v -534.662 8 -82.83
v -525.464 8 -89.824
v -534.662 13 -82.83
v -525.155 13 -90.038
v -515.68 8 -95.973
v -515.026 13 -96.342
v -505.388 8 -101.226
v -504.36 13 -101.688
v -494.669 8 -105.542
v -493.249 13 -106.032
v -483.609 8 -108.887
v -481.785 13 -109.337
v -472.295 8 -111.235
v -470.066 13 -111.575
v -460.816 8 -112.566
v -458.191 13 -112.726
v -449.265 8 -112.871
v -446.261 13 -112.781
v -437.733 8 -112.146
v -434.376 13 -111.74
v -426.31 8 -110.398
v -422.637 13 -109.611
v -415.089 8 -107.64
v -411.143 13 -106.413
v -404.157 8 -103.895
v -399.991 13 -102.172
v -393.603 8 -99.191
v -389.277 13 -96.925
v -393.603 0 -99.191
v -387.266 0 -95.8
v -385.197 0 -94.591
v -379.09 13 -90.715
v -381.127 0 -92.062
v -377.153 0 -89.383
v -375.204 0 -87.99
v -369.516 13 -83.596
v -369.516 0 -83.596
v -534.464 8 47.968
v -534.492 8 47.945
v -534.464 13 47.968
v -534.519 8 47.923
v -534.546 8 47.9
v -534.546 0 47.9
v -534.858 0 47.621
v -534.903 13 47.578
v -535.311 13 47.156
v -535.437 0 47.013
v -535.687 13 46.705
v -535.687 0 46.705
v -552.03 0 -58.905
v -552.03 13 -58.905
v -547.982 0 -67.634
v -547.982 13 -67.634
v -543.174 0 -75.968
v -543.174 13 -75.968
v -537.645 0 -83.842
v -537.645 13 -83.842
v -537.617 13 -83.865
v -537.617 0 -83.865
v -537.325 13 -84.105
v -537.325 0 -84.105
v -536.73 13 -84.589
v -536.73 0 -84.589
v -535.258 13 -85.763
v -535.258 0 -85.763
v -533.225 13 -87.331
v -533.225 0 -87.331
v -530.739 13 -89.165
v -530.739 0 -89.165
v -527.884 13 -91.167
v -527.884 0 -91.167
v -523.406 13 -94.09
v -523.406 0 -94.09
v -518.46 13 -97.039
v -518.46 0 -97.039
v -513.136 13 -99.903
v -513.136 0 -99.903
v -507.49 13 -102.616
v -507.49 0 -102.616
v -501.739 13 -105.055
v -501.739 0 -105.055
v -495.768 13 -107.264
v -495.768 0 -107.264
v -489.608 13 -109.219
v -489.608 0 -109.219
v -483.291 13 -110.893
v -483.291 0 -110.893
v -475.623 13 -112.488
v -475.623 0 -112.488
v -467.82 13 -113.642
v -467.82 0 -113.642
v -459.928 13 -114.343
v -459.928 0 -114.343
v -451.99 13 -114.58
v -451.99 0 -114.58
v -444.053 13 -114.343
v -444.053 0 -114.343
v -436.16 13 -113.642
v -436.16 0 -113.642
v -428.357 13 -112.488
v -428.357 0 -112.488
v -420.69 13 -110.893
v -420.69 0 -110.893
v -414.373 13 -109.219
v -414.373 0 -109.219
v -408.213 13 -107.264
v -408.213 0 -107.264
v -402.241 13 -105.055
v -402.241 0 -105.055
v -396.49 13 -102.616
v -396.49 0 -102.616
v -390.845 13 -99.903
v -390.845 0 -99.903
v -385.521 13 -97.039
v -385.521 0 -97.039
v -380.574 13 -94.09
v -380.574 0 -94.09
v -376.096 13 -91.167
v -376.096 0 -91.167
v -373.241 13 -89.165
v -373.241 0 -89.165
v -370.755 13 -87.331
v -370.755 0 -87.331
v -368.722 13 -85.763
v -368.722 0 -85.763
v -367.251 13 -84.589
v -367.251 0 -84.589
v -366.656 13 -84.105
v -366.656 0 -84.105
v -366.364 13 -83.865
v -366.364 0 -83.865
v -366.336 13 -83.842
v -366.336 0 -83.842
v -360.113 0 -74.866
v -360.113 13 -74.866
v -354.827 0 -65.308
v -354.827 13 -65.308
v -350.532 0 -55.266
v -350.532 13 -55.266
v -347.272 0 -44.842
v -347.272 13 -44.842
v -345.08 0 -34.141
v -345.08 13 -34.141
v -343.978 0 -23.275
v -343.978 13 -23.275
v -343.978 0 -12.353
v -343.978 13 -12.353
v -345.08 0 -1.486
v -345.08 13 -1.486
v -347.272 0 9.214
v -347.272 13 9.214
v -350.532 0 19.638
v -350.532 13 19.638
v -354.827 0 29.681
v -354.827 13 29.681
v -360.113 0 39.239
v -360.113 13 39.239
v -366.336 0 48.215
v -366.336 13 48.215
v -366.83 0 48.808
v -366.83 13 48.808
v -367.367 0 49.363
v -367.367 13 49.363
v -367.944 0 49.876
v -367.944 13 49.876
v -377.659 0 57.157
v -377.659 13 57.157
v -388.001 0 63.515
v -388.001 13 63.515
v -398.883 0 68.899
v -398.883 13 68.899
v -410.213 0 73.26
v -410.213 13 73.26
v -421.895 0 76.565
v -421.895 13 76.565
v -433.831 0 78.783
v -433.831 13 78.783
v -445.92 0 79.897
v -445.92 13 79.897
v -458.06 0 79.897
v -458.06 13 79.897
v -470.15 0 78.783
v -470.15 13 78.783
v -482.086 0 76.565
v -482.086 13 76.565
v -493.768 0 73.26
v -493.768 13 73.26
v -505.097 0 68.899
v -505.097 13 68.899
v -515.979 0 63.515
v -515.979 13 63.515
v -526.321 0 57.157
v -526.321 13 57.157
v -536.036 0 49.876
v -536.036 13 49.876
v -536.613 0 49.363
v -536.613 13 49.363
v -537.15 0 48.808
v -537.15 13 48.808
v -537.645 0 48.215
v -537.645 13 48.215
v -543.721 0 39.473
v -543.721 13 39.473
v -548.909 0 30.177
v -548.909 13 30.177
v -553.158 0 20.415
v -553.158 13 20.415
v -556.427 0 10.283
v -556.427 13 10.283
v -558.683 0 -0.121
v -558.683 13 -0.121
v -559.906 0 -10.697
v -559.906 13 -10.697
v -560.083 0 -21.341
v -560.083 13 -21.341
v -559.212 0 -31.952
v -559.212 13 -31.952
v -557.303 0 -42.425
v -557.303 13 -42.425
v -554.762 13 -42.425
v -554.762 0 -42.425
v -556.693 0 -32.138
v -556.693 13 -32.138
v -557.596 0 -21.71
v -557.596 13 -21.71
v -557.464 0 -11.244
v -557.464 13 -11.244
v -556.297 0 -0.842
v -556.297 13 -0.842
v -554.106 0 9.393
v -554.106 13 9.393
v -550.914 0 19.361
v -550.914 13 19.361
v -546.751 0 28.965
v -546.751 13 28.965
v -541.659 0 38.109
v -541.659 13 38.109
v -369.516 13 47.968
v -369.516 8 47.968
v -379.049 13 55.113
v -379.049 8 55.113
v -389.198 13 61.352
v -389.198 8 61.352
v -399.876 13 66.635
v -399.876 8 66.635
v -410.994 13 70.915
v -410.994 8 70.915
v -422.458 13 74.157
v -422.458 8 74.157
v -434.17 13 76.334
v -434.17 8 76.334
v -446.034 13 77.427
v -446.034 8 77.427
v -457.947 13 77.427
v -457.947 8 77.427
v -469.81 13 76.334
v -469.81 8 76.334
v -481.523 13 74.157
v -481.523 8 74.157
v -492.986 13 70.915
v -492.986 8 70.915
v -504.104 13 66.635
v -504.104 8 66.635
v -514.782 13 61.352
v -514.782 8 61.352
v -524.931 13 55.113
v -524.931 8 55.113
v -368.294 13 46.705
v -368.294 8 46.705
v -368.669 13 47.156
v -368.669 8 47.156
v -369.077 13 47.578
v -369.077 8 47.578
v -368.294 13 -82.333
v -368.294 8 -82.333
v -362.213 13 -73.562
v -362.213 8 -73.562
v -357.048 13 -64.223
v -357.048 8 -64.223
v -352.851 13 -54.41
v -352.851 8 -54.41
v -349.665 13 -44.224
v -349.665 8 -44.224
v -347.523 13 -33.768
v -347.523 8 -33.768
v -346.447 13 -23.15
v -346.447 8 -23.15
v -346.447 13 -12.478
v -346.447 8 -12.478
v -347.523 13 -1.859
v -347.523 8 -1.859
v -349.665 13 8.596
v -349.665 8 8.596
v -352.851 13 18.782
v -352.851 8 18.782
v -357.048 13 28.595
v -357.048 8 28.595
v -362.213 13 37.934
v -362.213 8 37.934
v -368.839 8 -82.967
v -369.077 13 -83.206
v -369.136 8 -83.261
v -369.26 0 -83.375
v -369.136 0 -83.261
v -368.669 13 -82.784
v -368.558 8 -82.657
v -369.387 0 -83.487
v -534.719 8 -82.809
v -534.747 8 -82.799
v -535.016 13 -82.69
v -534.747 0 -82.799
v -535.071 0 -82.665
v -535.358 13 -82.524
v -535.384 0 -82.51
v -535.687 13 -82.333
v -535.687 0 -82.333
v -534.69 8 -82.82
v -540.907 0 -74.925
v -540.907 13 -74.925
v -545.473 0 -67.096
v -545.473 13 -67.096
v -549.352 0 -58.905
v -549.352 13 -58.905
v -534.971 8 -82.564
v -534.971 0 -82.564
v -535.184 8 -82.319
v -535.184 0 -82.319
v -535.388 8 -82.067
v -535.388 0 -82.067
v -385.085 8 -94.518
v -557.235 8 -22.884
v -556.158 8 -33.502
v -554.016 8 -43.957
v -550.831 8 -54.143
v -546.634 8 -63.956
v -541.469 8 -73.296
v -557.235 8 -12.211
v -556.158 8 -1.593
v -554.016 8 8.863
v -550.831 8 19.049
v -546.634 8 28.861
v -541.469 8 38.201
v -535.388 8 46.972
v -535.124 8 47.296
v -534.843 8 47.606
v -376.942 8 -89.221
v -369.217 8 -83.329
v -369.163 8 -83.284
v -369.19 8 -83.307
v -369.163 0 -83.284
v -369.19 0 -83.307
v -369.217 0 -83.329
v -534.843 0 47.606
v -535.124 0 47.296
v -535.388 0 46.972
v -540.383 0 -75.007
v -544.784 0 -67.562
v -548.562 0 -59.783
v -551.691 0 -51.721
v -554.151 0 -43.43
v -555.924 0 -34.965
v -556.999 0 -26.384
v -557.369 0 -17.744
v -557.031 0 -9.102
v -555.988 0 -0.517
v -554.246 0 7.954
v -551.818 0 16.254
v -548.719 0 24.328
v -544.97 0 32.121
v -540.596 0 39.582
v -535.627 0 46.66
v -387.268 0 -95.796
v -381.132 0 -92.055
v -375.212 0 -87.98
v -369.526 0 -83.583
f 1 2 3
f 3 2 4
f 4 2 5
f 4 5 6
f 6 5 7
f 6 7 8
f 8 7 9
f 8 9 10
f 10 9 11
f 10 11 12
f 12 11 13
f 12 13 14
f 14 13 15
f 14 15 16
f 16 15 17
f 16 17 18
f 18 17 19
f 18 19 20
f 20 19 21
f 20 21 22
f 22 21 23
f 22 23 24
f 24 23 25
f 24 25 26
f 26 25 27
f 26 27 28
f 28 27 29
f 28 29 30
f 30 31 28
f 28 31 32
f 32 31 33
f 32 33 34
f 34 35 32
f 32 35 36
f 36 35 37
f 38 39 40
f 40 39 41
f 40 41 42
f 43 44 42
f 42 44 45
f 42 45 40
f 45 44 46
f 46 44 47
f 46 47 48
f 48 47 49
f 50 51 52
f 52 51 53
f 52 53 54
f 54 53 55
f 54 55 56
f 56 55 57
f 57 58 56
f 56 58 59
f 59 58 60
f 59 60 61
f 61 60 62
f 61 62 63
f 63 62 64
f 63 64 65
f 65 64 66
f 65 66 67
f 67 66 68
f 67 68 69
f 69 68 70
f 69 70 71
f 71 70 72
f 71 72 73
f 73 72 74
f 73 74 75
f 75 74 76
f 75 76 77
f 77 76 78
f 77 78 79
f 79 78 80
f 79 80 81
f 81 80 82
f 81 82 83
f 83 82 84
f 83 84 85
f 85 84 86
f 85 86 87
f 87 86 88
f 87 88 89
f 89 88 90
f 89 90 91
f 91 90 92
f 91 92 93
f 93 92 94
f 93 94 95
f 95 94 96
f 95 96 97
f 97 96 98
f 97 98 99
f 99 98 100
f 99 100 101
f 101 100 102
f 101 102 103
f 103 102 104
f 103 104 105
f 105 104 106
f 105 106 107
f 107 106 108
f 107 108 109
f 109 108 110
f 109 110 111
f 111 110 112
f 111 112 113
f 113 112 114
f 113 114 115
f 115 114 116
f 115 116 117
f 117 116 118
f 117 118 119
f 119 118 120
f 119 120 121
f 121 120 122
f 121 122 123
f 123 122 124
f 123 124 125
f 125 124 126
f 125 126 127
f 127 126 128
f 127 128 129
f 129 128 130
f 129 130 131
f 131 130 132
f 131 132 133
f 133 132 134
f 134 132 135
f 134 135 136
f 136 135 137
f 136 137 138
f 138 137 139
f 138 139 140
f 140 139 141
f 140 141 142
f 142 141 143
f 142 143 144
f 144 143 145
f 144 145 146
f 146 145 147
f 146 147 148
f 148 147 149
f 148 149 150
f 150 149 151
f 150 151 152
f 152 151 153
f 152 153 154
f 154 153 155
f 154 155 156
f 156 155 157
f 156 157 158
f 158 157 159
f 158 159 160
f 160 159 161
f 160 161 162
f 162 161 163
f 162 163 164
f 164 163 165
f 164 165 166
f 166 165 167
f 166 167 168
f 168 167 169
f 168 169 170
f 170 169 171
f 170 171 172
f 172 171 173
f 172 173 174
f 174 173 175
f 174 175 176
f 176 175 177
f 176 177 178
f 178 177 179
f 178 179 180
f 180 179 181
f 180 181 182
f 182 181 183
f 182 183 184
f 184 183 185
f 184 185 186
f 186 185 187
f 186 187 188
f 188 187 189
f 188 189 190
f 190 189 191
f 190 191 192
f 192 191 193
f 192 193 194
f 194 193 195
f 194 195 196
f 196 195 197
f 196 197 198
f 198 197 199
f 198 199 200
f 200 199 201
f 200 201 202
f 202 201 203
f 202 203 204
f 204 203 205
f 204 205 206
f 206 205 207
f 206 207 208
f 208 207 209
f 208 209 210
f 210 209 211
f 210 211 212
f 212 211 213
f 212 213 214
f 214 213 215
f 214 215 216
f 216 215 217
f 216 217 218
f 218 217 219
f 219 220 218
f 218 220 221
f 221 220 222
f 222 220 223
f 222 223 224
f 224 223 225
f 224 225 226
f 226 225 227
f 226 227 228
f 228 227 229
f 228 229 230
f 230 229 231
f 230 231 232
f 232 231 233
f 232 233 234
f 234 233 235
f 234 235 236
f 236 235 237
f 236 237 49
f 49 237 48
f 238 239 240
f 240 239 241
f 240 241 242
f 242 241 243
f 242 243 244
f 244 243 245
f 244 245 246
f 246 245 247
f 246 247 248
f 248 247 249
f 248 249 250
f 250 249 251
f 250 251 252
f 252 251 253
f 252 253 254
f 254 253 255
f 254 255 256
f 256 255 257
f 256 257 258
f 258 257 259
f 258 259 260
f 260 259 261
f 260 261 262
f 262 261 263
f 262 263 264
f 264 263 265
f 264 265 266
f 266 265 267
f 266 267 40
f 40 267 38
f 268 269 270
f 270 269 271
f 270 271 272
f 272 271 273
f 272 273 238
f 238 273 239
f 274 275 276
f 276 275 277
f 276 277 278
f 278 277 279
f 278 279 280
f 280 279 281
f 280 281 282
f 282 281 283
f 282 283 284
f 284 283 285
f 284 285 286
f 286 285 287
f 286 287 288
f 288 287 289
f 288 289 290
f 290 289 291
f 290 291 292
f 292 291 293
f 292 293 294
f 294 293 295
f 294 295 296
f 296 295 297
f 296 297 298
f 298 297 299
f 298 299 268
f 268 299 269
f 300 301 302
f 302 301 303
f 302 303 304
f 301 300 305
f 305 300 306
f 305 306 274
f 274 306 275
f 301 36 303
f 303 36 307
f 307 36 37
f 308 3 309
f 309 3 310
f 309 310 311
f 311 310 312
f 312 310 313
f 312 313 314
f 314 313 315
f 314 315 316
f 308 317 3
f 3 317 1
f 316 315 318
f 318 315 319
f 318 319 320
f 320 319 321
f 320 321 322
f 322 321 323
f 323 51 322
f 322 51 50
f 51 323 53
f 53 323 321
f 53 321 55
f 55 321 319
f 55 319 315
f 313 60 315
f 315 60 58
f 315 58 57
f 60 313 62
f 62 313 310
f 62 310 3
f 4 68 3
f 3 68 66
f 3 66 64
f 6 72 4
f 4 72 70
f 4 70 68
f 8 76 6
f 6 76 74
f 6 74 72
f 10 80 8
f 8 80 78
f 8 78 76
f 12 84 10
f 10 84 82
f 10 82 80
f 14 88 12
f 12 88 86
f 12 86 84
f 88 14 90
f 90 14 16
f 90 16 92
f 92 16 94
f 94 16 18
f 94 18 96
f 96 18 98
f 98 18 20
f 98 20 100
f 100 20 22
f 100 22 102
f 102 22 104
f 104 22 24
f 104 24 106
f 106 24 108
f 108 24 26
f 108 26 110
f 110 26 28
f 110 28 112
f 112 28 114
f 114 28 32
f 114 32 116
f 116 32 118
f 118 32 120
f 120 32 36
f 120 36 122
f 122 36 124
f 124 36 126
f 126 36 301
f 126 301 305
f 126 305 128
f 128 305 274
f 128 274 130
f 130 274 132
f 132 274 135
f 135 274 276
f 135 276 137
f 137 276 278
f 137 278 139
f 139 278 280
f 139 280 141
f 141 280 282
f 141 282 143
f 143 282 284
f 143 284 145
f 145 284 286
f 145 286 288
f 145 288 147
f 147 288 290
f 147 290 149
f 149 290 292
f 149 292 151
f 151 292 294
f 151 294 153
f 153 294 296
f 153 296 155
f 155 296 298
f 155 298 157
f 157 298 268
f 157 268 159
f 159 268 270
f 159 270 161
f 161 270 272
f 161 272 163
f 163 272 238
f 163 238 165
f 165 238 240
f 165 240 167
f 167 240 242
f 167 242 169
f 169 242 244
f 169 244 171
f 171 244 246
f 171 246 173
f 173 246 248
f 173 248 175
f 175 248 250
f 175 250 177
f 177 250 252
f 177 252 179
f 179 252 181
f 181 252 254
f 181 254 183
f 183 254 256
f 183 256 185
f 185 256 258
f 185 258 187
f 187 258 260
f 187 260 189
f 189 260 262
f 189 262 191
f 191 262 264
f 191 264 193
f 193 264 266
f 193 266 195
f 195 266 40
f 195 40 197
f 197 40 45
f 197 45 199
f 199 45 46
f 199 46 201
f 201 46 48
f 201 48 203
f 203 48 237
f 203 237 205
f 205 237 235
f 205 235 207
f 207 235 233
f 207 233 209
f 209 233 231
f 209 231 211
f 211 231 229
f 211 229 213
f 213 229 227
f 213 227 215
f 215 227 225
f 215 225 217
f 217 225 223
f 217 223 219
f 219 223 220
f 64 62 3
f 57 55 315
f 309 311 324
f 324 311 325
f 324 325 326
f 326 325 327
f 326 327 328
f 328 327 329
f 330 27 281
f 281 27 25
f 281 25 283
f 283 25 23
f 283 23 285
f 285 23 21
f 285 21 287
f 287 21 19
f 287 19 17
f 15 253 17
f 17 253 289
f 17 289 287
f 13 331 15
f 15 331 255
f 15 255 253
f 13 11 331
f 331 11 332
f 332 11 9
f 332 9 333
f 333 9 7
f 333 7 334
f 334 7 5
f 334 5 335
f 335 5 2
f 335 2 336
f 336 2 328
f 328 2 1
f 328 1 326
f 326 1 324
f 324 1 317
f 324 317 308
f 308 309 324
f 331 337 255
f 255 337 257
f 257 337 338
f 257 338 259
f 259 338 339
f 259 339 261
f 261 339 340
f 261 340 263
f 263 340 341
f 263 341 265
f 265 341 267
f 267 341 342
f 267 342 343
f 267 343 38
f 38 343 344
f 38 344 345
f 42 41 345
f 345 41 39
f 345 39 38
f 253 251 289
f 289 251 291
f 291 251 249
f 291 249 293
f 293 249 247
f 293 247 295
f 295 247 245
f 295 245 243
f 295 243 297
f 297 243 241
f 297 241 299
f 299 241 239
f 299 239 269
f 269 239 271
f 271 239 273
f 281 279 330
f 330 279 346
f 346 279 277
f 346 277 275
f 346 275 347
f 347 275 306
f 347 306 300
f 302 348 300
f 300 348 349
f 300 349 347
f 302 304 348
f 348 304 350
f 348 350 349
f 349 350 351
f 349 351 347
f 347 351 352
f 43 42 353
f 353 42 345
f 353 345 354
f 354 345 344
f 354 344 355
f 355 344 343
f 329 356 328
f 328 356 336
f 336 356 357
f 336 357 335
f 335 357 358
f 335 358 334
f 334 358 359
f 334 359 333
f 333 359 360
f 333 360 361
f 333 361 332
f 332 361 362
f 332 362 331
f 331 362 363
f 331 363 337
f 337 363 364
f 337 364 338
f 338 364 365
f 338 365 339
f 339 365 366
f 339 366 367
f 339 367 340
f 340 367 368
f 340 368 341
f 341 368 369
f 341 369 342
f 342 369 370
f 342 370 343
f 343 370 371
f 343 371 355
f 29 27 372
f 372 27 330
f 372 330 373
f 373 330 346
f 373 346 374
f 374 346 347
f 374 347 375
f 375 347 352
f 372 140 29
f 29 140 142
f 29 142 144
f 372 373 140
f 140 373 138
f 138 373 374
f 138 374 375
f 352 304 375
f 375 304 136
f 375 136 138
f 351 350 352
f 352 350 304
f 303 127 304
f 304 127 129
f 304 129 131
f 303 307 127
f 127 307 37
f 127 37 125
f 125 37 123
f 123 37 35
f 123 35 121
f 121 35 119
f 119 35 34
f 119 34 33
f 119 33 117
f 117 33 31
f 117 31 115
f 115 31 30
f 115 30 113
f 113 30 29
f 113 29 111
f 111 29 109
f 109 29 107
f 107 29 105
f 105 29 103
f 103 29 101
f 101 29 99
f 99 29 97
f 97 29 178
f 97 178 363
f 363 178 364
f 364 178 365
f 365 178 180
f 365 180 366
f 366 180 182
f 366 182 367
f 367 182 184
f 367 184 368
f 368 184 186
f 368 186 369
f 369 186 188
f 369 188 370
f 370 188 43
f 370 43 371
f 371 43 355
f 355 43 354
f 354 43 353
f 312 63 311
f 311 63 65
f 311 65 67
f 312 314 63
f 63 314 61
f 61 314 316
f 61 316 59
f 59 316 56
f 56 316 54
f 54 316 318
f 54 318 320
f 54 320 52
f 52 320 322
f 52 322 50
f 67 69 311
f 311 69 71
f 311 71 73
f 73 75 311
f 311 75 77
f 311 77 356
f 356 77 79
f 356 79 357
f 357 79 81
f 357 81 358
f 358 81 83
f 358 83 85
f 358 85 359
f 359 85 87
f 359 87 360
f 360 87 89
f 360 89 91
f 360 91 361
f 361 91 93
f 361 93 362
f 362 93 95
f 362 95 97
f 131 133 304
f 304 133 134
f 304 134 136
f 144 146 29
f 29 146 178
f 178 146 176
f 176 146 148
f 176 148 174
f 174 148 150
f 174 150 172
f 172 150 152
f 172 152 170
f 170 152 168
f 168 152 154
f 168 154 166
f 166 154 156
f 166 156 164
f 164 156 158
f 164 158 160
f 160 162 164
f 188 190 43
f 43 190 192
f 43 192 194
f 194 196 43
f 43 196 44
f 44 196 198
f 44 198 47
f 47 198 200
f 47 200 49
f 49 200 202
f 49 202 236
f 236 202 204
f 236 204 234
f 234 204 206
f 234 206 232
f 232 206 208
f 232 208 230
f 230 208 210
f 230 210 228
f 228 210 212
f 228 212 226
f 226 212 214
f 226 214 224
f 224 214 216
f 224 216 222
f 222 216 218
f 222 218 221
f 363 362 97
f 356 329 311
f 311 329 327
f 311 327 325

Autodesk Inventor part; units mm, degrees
ref_plane "YZ Plane" through (0, 0, 0) normal (1, 0, 0) x (0, 1, 0)
ref_plane "XZ Plane" through (0, 0, 0) normal (0, 1, 0) x (-1, 0, 0)
ref_plane "XY Plane" through (0, 0, 0) normal (0, 0, 1) x (1, 0, 0)
sketch "Sketch11" plane through (0, 0, 0) normal (0, 1, 0) x (-1, 0, 0)
  line L0 (-102.245, 23.8947) -> (-99.7788, 23.8947) projected
  arc A0 (-99.7788, 23.8947) -> (-81.2588, -62.64) centre (0, 0) ccw projected
  arc A1 (-80.0719, -63.8659) -> (80.0719, -63.8659) centre (0, 33.3333) ccw projected
  arc A2 (81.2588, -62.64) -> (81.2588, 62.64) centre (0, 0) ccw projected
  arc A3 (80.0719, 63.8659) -> (-80.0719, 63.8659) centre (0, -33.3333) ccw projected
  arc A4 (-81.2588, 62.64) -> (-94.526, 39.8947) centre (0, 0) ccw projected
  line L1 (-94.526, 39.8947) -> (-97.1257, 39.8947) projected
  arc A5 (-83.1596, 64.1053) -> (-97.1257, 39.8947) centre (0, 0) ccw projected
  arc A6 (81.5979, 65.7183) -> (-81.5979, 65.7183) centre (0, -33.3333) ccw projected
  arc A7 (83.1596, -64.1053) -> (83.1596, 64.1053) centre (0, 0) ccw projected
  arc A8 (-81.5979, -65.7183) -> (81.5979, -65.7183) centre (0, 33.3333) ccw projected
  arc A9 (-102.245, 23.8947) -> (-83.1596, -64.1053) centre (0, 0) ccw projected
  arc A10 (-93.4835, 39.8947) -> (-98.7917, 23.8947) centre (0, 0) ccw projected
  line L2 (-101.282, 23.8947) -> (-98.7917, 23.8947) projected
  arc A11 (-96.1114, 39.8947) -> (-101.282, 23.8947) centre (0, 0) ccw projected
  line L3 (-96.1114, 39.8947) -> (-93.4835, 39.8947) projected
  spline S0 degree 3 poles (366.037, 48.4811) (366.0397, 48.4833) (366.0423, 48.4855) (366.045, 48.4876) (366.0496, 48.4915) (366.0562, 48.4969) (366.154, 48.5774) (366.4584, 48.8288) (367.7198, 49.8494) (368.9391, 50.8224) (371.9742, 53.1167) (373.7879, 54.4353) (378.6033, 57.7188) (381.7908, 59.7316) (388.6525, 63.6242) (392.3319, 65.5095) (403.6984, 70.6488) (411.8775, 73.498) (430.5038, 77.9475) (441.0984, 79.2185) (451.6914, 79.2185) (462.2843, 79.2185) (472.8789, 77.9475) (491.5053, 73.498) (499.6844, 70.6488) (511.0509, 65.5095) (514.7302, 63.6242) (521.5919, 59.7316) (524.7794, 57.7188) (529.5949, 54.4353) (531.4085, 53.1167) (534.4436, 50.8224) (535.663, 49.8494) (536.9243, 48.8288) (537.2288, 48.5774) (537.3265, 48.4969) (537.3332, 48.4915) (537.3378, 48.4876) (537.3404, 48.4855) (537.3431, 48.4833) (537.3457, 48.4811) knots -20.82184 -20.82184 -20.82184 -20.82184 -20.790868 -20.790868 -20.790868 -20.736708 -20.736708 -20.180748 -20.180748 -19.31556 -19.31556 -18.450373 -18.450373 -17.242245 -17.242245 -16.034118 -16.034118 -13.684157 -13.684157 -10.892672 -10.892672 -10.892672 -8.101188 -8.101188 -5.751227 -5.751227 -4.5431 -4.5431 -3.334972 -3.334972 -2.469784 -2.469784 -1.604597 -1.604597 -1.048636 -1.048636 -0.994477 -0.994477 -0.994477 -0.963505 -0.963505 -0.963505 -0.963505
  line L4 (346.379, 7.0643) -> (348.9192, 7.0643)
  arc A12 (354.3296, 23.5443) -> (367.9948, -82.0665) centre (451.6914, -17.5473) ccw
  spline S1 degree 3 poles (367.9948, -82.0665) (368.0665, -82.1595) (368.2141, -82.3423) (368.4475, -82.6062) (368.6926, -82.8593) (368.9488, -83.1012) (369.1267, -83.2546) (369.2173, -83.3292) knots -1 -1 -1 -1 -0.8 -0.6 -0.4 -0.2 0 0 0 0
  arc A13 (369.2173, -83.3292) -> (534.1654, -83.3292) centre (451.6914, 16.786) ccw
  spline S2 degree 3 poles (534.1654, -83.3292) (534.2561, -83.2546) (534.434, -83.1012) (534.6902, -82.8593) (534.9352, -82.6062) (535.1687, -82.3423) (535.3162, -82.1595) (535.3879, -82.0665) knots 0 0 0 0 0.2 0.4 0.6 0.8 1 1 1 1
  arc A14 (535.3879, -82.0665) -> (535.3879, 46.9719) centre (451.6914, -17.5473) ccw
  spline S3 degree 3 poles (535.3879, 46.9719) (535.3162, 47.0649) (535.1687, 47.2476) (534.9352, 47.5115) (534.6902, 47.7647) (534.434, 48.0065) (534.2561, 48.1599) (534.1654, 48.2346) knots -1 -1 -1 -1 -0.8 -0.6 -0.4 -0.2 0 0 0 0
  arc A15 (534.1654, 48.2346) -> (369.2173, 48.2346) centre (451.6914, -51.8807) ccw
  spline S4 degree 3 poles (369.2173, 48.2346) (369.1267, 48.1599) (368.9488, 48.0065) (368.6926, 47.7647) (368.4475, 47.5115) (368.2141, 47.2476) (368.0665, 47.0649) (367.9948, 46.9719) knots 0 0 0 0 0.2 0.4 0.6 0.8 1 1 1 1
  arc A16 (367.9948, 46.9719) -> (354.3296, 23.5443) centre (451.6914, -17.5473) ccw
  line L5 (354.3296, 23.5443) -> (351.6519, 23.5443)
  arc A17 (366.037, 48.4811) -> (351.6519, 23.5443) centre (451.6914, -17.5473) ccw
  spline S5 degree 3 poles (367.6455, 50.1425) (367.3474, 49.8969) (367.0632, 49.6347) (366.5258, 49.0795) (366.2729, 48.7871) (366.037, 48.4811) knots 0 0 0 0 0.112525 0.112525 0.22505 0.22505 0.22505 0.22505
  arc A18 (535.7372, 50.1425) -> (367.6455, 50.1425) centre (451.6914, -51.8807) ccw
  spline S6 degree 3 poles (537.3457, 48.4811) (537.1099, 48.7871) (536.857, 49.0795) (536.3195, 49.6347) (536.0354, 49.8969) (535.7372, 50.1425) knots 0 0 0 0 0.112525 0.112525 0.22505 0.22505 0.22505 0.22505
  arc A19 (537.3457, -83.5757) -> (537.3457, 48.4811) centre (451.6914, -17.5473) ccw
  spline S7 degree 3 poles (535.7372, -85.2372) (536.0354, -84.9915) (536.3195, -84.7293) (536.857, -84.1742) (537.1099, -83.8817) (537.3457, -83.5757) knots 0 0 0 0 0.112525 0.112525 0.22505 0.22505 0.22505 0.22505
  arc A20 (367.6455, -85.2372) -> (535.7372, -85.2372) centre (451.6914, 16.786) ccw
  spline S8 degree 3 poles (366.037, -83.5757) (366.2729, -83.8817) (366.5258, -84.1742) (367.0632, -84.7293) (367.3474, -84.9915) (367.6455, -85.2372) knots 0 0 0 0 0.112525 0.112525 0.22505 0.22505 0.22505 0.22505
  arc A21 (346.379, 7.0643) -> (366.037, -83.5757) centre (451.6914, -17.5473) ccw
  line L6 (347.3709, 7.0643) -> (348.9192, 7.0643)
  arc A22 (352.6966, 23.5443) -> (347.3709, 7.0643) centre (451.6914, -17.5473) ccw
  line L7 (352.6966, 23.5443) -> (354.3296, 23.5443)
  point P0 (354.3296, 23.5443)
  point P1 (348.9192, 7.0643)
extrude "Extrusion8" add sketch "Sketch11" along normal blind 8 contours A16 S4 A15 S3 A14 S2 A13 S1 A12
sketch "Sketch14" plane through (0, 8, 0) normal (0, 1, 0) x (1, 0, 0)
  line L0 (-557.3026, 42.4254) -> (-554.7623, 42.4254)
  spline S0 degree 3 poles (-535.6868, -46.7054) (-535.6151, -46.7984) (-535.4675, -46.9811) (-535.2341, -47.245) (-534.989, -47.4982) (-534.7328, -47.74) (-534.5549, -47.8934) (-534.4643, -47.9681) knots -1 -1 -1 -1 -0.8 -0.6 -0.4 -0.2 0 0 0 0
  spline S1 degree 3 poles (-537.6446, -48.2146) (-537.4087, -48.5206) (-537.1558, -48.813) (-536.6184, -49.3682) (-536.3342, -49.6304) (-536.036, -49.876) knots 0 0 0 0 0.112525 0.112525 0.22505 0.22505 0.22505 0.22505
  arc A0 (-554.7623, 42.4254) -> (-535.6868, -46.7054) centre (-451.9902, 17.8138) ccw
  arc A1 (-557.3026, 42.4254) -> (-537.6446, -48.2146) centre (-451.9902, 17.8138) ccw
  spline S2 degree 3 poles (-369.5161, -47.9681) (-369.4255, -47.8934) (-369.2476, -47.74) (-368.9914, -47.4982) (-368.7463, -47.245) (-368.5129, -46.9811) (-368.3653, -46.7984) (-368.2937, -46.7054) knots 0 0 0 0 0.2 0.4 0.6 0.8 1 1 1 1
  spline S3 degree 3 poles (-367.9444, -49.876) (-367.6462, -49.6304) (-367.3621, -49.3682) (-366.8246, -48.813) (-366.5717, -48.5206) (-366.3358, -48.2146) knots 0 0 0 0 0.112525 0.112525 0.22505 0.22505 0.22505 0.22505
  arc A2 (-368.2937, -46.7054) -> (-368.2937, 82.333) centre (-451.9902, 17.8138) ccw
  arc A3 (-366.3358, -48.2146) -> (-366.3358, 83.8422) centre (-451.9902, 17.8138) ccw
  spline S4 degree 3 poles (-366.3358, 83.8422) (-366.5717, 84.1482) (-366.8246, 84.4407) (-367.3621, 84.9958) (-367.6462, 85.258) (-367.9444, 85.5037) knots 0 0 0 0 0.112525 0.112525 0.22505 0.22505 0.22505 0.22505
  spline S5 degree 3 poles (-368.2937, 82.333) (-368.3653, 82.426) (-368.5129, 82.6088) (-368.7463, 82.8727) (-368.9914, 83.1258) (-369.2476, 83.3677) (-369.4255, 83.5211) (-369.5161, 83.5957) knots -1 -1 -1 -1 -0.8 -0.6 -0.4 -0.2 0 0 0 0
  spline S6 degree 3 poles (-537.6446, 83.8422) (-537.6419, 83.8444) (-537.6393, 83.8466) (-537.6366, 83.8488) (-537.632, 83.8526) (-537.6253, 83.8581) (-537.5276, 83.9386) (-537.2232, 84.1899) (-535.9618, 85.2106) (-534.7425, 86.1835) (-531.7074, 88.4778) (-529.8937, 89.7964) (-525.0783, 93.08) (-521.8908, 95.0928) (-515.029, 98.9853) (-511.3497, 100.8707) (-499.9832, 106.01) (-491.8041, 108.8591) (-473.1778, 113.3087) (-462.5832, 114.5796) (-451.9902, 114.5796) (-441.3973, 114.5796) (-430.8027, 113.3087) (-412.1763, 108.8591) (-403.9972, 106.01) (-392.6307, 100.8707) (-388.9514, 98.9853) (-382.0897, 95.0928) (-378.9021, 93.08) (-374.0867, 89.7964) (-372.273, 88.4778) (-369.2379, 86.1835) (-368.0186, 85.2106) (-366.7573, 84.1899) (-366.4528, 83.9386) (-366.3551, 83.8581) (-366.3484, 83.8526) (-366.3438, 83.8488) (-366.3411, 83.8466) (-366.3385, 83.8444) (-366.3358, 83.8422) knots -20.82184 -20.82184 -20.82184 -20.82184 -20.790868 -20.790868 -20.790868 -20.736708 -20.736708 -20.180748 -20.180748 -19.31556 -19.31556 -18.450373 -18.450373 -17.242245 -17.242245 -16.034118 -16.034118 -13.684157 -13.684157 -10.892672 -10.892672 -10.892672 -8.101188 -8.101188 -5.751227 -5.751227 -4.5431 -4.5431 -3.334972 -3.334972 -2.469784 -2.469784 -1.604597 -1.604597 -1.048636 -1.048636 -0.994477 -0.994477 -0.994477 -0.963505 -0.963505 -0.963505 -0.963505
  spline S7 degree 3 poles (-534.6619, 82.8298) (-534.7337, 82.8045) (-534.8761, 82.7507) (-535.0858, 82.6604) (-535.2912, 82.5608) (-535.492, 82.4521) (-535.6225, 82.3737) (-535.6868, 82.333) knots 0 0 0 0 0.2 0.4 0.6 0.8 1 1 1 1
  arc A4 (-534.4643, -47.9681) -> (-369.5161, -47.9681) centre (-451.9902, 52.1472) ccw
  arc A5 (-536.036, -49.876) -> (-367.9444, -49.876) centre (-451.9902, 52.1472) ccw
  arc A6 (-367.9444, 85.5037) -> (-536.036, 85.5037) centre (-451.9902, -16.5195) ccw
  arc A7 (-369.5161, 83.5957) -> (-534.6619, 82.8298) centre (-451.6251, -16.8192) ccw
  arc A8 (-535.6868, 82.333) -> (-549.352, 58.9054) centre (-451.9902, 17.8138) ccw
  line L1 (-550.985, 58.9054) -> (-548.2782, 58.9054)
  line L2 (-549.352, 58.9054) -> (-552.0297, 58.9054)
  arc A9 (-548.2782, 58.9054) -> (-553.7457, 42.4254) centre (-451.9902, 17.8138) ccw
  line L3 (-556.3107, 42.4254) -> (-553.7457, 42.4254)
  arc A10 (-550.985, 58.9054) -> (-556.3107, 42.4254) centre (-451.9902, 17.8138) ccw
  arc A11 (-537.6446, 83.8422) -> (-552.0297, 58.9054) centre (-451.9902, 17.8138) ccw
  spline S8 degree 3 poles (-536.036, 85.5037) (-536.3342, 85.258) (-536.6184, 84.9958) (-537.1558, 84.4407) (-537.4087, 84.1482) (-537.6446, 83.8422) knots 0 0 0 0 0.112525 0.112525 0.22505 0.22505 0.22505 0.22505
  line L4 (-349.9359, -7.0643) -> (-348.9192, -7.0643) projected
  line L5 (-349.2823, -7.0643) -> (-349.9359, -7.0643)
  line L6 (-354.3296, -23.5443) -> (-355.4033, -23.5443) projected
  line L7 (-349.9359, -7.0643) -> (-355.4033, -23.5443)
  line L8 (-355.4033, -23.5443) -> (-354.8665, -23.5443)
  point P0 (0, 0)
  point P1 (-537.6446, 83.8422)
extrude "Extrusion11" add sketch "Sketch14" along normal blind 5 and the other way blind 8 contours L0 A0 S0 A4 S2 A2 S5 A7 S7 A8 L1 L2 A11 S6 A3 S3 A5 S1 A1
properties part number "Sonion ring base"
